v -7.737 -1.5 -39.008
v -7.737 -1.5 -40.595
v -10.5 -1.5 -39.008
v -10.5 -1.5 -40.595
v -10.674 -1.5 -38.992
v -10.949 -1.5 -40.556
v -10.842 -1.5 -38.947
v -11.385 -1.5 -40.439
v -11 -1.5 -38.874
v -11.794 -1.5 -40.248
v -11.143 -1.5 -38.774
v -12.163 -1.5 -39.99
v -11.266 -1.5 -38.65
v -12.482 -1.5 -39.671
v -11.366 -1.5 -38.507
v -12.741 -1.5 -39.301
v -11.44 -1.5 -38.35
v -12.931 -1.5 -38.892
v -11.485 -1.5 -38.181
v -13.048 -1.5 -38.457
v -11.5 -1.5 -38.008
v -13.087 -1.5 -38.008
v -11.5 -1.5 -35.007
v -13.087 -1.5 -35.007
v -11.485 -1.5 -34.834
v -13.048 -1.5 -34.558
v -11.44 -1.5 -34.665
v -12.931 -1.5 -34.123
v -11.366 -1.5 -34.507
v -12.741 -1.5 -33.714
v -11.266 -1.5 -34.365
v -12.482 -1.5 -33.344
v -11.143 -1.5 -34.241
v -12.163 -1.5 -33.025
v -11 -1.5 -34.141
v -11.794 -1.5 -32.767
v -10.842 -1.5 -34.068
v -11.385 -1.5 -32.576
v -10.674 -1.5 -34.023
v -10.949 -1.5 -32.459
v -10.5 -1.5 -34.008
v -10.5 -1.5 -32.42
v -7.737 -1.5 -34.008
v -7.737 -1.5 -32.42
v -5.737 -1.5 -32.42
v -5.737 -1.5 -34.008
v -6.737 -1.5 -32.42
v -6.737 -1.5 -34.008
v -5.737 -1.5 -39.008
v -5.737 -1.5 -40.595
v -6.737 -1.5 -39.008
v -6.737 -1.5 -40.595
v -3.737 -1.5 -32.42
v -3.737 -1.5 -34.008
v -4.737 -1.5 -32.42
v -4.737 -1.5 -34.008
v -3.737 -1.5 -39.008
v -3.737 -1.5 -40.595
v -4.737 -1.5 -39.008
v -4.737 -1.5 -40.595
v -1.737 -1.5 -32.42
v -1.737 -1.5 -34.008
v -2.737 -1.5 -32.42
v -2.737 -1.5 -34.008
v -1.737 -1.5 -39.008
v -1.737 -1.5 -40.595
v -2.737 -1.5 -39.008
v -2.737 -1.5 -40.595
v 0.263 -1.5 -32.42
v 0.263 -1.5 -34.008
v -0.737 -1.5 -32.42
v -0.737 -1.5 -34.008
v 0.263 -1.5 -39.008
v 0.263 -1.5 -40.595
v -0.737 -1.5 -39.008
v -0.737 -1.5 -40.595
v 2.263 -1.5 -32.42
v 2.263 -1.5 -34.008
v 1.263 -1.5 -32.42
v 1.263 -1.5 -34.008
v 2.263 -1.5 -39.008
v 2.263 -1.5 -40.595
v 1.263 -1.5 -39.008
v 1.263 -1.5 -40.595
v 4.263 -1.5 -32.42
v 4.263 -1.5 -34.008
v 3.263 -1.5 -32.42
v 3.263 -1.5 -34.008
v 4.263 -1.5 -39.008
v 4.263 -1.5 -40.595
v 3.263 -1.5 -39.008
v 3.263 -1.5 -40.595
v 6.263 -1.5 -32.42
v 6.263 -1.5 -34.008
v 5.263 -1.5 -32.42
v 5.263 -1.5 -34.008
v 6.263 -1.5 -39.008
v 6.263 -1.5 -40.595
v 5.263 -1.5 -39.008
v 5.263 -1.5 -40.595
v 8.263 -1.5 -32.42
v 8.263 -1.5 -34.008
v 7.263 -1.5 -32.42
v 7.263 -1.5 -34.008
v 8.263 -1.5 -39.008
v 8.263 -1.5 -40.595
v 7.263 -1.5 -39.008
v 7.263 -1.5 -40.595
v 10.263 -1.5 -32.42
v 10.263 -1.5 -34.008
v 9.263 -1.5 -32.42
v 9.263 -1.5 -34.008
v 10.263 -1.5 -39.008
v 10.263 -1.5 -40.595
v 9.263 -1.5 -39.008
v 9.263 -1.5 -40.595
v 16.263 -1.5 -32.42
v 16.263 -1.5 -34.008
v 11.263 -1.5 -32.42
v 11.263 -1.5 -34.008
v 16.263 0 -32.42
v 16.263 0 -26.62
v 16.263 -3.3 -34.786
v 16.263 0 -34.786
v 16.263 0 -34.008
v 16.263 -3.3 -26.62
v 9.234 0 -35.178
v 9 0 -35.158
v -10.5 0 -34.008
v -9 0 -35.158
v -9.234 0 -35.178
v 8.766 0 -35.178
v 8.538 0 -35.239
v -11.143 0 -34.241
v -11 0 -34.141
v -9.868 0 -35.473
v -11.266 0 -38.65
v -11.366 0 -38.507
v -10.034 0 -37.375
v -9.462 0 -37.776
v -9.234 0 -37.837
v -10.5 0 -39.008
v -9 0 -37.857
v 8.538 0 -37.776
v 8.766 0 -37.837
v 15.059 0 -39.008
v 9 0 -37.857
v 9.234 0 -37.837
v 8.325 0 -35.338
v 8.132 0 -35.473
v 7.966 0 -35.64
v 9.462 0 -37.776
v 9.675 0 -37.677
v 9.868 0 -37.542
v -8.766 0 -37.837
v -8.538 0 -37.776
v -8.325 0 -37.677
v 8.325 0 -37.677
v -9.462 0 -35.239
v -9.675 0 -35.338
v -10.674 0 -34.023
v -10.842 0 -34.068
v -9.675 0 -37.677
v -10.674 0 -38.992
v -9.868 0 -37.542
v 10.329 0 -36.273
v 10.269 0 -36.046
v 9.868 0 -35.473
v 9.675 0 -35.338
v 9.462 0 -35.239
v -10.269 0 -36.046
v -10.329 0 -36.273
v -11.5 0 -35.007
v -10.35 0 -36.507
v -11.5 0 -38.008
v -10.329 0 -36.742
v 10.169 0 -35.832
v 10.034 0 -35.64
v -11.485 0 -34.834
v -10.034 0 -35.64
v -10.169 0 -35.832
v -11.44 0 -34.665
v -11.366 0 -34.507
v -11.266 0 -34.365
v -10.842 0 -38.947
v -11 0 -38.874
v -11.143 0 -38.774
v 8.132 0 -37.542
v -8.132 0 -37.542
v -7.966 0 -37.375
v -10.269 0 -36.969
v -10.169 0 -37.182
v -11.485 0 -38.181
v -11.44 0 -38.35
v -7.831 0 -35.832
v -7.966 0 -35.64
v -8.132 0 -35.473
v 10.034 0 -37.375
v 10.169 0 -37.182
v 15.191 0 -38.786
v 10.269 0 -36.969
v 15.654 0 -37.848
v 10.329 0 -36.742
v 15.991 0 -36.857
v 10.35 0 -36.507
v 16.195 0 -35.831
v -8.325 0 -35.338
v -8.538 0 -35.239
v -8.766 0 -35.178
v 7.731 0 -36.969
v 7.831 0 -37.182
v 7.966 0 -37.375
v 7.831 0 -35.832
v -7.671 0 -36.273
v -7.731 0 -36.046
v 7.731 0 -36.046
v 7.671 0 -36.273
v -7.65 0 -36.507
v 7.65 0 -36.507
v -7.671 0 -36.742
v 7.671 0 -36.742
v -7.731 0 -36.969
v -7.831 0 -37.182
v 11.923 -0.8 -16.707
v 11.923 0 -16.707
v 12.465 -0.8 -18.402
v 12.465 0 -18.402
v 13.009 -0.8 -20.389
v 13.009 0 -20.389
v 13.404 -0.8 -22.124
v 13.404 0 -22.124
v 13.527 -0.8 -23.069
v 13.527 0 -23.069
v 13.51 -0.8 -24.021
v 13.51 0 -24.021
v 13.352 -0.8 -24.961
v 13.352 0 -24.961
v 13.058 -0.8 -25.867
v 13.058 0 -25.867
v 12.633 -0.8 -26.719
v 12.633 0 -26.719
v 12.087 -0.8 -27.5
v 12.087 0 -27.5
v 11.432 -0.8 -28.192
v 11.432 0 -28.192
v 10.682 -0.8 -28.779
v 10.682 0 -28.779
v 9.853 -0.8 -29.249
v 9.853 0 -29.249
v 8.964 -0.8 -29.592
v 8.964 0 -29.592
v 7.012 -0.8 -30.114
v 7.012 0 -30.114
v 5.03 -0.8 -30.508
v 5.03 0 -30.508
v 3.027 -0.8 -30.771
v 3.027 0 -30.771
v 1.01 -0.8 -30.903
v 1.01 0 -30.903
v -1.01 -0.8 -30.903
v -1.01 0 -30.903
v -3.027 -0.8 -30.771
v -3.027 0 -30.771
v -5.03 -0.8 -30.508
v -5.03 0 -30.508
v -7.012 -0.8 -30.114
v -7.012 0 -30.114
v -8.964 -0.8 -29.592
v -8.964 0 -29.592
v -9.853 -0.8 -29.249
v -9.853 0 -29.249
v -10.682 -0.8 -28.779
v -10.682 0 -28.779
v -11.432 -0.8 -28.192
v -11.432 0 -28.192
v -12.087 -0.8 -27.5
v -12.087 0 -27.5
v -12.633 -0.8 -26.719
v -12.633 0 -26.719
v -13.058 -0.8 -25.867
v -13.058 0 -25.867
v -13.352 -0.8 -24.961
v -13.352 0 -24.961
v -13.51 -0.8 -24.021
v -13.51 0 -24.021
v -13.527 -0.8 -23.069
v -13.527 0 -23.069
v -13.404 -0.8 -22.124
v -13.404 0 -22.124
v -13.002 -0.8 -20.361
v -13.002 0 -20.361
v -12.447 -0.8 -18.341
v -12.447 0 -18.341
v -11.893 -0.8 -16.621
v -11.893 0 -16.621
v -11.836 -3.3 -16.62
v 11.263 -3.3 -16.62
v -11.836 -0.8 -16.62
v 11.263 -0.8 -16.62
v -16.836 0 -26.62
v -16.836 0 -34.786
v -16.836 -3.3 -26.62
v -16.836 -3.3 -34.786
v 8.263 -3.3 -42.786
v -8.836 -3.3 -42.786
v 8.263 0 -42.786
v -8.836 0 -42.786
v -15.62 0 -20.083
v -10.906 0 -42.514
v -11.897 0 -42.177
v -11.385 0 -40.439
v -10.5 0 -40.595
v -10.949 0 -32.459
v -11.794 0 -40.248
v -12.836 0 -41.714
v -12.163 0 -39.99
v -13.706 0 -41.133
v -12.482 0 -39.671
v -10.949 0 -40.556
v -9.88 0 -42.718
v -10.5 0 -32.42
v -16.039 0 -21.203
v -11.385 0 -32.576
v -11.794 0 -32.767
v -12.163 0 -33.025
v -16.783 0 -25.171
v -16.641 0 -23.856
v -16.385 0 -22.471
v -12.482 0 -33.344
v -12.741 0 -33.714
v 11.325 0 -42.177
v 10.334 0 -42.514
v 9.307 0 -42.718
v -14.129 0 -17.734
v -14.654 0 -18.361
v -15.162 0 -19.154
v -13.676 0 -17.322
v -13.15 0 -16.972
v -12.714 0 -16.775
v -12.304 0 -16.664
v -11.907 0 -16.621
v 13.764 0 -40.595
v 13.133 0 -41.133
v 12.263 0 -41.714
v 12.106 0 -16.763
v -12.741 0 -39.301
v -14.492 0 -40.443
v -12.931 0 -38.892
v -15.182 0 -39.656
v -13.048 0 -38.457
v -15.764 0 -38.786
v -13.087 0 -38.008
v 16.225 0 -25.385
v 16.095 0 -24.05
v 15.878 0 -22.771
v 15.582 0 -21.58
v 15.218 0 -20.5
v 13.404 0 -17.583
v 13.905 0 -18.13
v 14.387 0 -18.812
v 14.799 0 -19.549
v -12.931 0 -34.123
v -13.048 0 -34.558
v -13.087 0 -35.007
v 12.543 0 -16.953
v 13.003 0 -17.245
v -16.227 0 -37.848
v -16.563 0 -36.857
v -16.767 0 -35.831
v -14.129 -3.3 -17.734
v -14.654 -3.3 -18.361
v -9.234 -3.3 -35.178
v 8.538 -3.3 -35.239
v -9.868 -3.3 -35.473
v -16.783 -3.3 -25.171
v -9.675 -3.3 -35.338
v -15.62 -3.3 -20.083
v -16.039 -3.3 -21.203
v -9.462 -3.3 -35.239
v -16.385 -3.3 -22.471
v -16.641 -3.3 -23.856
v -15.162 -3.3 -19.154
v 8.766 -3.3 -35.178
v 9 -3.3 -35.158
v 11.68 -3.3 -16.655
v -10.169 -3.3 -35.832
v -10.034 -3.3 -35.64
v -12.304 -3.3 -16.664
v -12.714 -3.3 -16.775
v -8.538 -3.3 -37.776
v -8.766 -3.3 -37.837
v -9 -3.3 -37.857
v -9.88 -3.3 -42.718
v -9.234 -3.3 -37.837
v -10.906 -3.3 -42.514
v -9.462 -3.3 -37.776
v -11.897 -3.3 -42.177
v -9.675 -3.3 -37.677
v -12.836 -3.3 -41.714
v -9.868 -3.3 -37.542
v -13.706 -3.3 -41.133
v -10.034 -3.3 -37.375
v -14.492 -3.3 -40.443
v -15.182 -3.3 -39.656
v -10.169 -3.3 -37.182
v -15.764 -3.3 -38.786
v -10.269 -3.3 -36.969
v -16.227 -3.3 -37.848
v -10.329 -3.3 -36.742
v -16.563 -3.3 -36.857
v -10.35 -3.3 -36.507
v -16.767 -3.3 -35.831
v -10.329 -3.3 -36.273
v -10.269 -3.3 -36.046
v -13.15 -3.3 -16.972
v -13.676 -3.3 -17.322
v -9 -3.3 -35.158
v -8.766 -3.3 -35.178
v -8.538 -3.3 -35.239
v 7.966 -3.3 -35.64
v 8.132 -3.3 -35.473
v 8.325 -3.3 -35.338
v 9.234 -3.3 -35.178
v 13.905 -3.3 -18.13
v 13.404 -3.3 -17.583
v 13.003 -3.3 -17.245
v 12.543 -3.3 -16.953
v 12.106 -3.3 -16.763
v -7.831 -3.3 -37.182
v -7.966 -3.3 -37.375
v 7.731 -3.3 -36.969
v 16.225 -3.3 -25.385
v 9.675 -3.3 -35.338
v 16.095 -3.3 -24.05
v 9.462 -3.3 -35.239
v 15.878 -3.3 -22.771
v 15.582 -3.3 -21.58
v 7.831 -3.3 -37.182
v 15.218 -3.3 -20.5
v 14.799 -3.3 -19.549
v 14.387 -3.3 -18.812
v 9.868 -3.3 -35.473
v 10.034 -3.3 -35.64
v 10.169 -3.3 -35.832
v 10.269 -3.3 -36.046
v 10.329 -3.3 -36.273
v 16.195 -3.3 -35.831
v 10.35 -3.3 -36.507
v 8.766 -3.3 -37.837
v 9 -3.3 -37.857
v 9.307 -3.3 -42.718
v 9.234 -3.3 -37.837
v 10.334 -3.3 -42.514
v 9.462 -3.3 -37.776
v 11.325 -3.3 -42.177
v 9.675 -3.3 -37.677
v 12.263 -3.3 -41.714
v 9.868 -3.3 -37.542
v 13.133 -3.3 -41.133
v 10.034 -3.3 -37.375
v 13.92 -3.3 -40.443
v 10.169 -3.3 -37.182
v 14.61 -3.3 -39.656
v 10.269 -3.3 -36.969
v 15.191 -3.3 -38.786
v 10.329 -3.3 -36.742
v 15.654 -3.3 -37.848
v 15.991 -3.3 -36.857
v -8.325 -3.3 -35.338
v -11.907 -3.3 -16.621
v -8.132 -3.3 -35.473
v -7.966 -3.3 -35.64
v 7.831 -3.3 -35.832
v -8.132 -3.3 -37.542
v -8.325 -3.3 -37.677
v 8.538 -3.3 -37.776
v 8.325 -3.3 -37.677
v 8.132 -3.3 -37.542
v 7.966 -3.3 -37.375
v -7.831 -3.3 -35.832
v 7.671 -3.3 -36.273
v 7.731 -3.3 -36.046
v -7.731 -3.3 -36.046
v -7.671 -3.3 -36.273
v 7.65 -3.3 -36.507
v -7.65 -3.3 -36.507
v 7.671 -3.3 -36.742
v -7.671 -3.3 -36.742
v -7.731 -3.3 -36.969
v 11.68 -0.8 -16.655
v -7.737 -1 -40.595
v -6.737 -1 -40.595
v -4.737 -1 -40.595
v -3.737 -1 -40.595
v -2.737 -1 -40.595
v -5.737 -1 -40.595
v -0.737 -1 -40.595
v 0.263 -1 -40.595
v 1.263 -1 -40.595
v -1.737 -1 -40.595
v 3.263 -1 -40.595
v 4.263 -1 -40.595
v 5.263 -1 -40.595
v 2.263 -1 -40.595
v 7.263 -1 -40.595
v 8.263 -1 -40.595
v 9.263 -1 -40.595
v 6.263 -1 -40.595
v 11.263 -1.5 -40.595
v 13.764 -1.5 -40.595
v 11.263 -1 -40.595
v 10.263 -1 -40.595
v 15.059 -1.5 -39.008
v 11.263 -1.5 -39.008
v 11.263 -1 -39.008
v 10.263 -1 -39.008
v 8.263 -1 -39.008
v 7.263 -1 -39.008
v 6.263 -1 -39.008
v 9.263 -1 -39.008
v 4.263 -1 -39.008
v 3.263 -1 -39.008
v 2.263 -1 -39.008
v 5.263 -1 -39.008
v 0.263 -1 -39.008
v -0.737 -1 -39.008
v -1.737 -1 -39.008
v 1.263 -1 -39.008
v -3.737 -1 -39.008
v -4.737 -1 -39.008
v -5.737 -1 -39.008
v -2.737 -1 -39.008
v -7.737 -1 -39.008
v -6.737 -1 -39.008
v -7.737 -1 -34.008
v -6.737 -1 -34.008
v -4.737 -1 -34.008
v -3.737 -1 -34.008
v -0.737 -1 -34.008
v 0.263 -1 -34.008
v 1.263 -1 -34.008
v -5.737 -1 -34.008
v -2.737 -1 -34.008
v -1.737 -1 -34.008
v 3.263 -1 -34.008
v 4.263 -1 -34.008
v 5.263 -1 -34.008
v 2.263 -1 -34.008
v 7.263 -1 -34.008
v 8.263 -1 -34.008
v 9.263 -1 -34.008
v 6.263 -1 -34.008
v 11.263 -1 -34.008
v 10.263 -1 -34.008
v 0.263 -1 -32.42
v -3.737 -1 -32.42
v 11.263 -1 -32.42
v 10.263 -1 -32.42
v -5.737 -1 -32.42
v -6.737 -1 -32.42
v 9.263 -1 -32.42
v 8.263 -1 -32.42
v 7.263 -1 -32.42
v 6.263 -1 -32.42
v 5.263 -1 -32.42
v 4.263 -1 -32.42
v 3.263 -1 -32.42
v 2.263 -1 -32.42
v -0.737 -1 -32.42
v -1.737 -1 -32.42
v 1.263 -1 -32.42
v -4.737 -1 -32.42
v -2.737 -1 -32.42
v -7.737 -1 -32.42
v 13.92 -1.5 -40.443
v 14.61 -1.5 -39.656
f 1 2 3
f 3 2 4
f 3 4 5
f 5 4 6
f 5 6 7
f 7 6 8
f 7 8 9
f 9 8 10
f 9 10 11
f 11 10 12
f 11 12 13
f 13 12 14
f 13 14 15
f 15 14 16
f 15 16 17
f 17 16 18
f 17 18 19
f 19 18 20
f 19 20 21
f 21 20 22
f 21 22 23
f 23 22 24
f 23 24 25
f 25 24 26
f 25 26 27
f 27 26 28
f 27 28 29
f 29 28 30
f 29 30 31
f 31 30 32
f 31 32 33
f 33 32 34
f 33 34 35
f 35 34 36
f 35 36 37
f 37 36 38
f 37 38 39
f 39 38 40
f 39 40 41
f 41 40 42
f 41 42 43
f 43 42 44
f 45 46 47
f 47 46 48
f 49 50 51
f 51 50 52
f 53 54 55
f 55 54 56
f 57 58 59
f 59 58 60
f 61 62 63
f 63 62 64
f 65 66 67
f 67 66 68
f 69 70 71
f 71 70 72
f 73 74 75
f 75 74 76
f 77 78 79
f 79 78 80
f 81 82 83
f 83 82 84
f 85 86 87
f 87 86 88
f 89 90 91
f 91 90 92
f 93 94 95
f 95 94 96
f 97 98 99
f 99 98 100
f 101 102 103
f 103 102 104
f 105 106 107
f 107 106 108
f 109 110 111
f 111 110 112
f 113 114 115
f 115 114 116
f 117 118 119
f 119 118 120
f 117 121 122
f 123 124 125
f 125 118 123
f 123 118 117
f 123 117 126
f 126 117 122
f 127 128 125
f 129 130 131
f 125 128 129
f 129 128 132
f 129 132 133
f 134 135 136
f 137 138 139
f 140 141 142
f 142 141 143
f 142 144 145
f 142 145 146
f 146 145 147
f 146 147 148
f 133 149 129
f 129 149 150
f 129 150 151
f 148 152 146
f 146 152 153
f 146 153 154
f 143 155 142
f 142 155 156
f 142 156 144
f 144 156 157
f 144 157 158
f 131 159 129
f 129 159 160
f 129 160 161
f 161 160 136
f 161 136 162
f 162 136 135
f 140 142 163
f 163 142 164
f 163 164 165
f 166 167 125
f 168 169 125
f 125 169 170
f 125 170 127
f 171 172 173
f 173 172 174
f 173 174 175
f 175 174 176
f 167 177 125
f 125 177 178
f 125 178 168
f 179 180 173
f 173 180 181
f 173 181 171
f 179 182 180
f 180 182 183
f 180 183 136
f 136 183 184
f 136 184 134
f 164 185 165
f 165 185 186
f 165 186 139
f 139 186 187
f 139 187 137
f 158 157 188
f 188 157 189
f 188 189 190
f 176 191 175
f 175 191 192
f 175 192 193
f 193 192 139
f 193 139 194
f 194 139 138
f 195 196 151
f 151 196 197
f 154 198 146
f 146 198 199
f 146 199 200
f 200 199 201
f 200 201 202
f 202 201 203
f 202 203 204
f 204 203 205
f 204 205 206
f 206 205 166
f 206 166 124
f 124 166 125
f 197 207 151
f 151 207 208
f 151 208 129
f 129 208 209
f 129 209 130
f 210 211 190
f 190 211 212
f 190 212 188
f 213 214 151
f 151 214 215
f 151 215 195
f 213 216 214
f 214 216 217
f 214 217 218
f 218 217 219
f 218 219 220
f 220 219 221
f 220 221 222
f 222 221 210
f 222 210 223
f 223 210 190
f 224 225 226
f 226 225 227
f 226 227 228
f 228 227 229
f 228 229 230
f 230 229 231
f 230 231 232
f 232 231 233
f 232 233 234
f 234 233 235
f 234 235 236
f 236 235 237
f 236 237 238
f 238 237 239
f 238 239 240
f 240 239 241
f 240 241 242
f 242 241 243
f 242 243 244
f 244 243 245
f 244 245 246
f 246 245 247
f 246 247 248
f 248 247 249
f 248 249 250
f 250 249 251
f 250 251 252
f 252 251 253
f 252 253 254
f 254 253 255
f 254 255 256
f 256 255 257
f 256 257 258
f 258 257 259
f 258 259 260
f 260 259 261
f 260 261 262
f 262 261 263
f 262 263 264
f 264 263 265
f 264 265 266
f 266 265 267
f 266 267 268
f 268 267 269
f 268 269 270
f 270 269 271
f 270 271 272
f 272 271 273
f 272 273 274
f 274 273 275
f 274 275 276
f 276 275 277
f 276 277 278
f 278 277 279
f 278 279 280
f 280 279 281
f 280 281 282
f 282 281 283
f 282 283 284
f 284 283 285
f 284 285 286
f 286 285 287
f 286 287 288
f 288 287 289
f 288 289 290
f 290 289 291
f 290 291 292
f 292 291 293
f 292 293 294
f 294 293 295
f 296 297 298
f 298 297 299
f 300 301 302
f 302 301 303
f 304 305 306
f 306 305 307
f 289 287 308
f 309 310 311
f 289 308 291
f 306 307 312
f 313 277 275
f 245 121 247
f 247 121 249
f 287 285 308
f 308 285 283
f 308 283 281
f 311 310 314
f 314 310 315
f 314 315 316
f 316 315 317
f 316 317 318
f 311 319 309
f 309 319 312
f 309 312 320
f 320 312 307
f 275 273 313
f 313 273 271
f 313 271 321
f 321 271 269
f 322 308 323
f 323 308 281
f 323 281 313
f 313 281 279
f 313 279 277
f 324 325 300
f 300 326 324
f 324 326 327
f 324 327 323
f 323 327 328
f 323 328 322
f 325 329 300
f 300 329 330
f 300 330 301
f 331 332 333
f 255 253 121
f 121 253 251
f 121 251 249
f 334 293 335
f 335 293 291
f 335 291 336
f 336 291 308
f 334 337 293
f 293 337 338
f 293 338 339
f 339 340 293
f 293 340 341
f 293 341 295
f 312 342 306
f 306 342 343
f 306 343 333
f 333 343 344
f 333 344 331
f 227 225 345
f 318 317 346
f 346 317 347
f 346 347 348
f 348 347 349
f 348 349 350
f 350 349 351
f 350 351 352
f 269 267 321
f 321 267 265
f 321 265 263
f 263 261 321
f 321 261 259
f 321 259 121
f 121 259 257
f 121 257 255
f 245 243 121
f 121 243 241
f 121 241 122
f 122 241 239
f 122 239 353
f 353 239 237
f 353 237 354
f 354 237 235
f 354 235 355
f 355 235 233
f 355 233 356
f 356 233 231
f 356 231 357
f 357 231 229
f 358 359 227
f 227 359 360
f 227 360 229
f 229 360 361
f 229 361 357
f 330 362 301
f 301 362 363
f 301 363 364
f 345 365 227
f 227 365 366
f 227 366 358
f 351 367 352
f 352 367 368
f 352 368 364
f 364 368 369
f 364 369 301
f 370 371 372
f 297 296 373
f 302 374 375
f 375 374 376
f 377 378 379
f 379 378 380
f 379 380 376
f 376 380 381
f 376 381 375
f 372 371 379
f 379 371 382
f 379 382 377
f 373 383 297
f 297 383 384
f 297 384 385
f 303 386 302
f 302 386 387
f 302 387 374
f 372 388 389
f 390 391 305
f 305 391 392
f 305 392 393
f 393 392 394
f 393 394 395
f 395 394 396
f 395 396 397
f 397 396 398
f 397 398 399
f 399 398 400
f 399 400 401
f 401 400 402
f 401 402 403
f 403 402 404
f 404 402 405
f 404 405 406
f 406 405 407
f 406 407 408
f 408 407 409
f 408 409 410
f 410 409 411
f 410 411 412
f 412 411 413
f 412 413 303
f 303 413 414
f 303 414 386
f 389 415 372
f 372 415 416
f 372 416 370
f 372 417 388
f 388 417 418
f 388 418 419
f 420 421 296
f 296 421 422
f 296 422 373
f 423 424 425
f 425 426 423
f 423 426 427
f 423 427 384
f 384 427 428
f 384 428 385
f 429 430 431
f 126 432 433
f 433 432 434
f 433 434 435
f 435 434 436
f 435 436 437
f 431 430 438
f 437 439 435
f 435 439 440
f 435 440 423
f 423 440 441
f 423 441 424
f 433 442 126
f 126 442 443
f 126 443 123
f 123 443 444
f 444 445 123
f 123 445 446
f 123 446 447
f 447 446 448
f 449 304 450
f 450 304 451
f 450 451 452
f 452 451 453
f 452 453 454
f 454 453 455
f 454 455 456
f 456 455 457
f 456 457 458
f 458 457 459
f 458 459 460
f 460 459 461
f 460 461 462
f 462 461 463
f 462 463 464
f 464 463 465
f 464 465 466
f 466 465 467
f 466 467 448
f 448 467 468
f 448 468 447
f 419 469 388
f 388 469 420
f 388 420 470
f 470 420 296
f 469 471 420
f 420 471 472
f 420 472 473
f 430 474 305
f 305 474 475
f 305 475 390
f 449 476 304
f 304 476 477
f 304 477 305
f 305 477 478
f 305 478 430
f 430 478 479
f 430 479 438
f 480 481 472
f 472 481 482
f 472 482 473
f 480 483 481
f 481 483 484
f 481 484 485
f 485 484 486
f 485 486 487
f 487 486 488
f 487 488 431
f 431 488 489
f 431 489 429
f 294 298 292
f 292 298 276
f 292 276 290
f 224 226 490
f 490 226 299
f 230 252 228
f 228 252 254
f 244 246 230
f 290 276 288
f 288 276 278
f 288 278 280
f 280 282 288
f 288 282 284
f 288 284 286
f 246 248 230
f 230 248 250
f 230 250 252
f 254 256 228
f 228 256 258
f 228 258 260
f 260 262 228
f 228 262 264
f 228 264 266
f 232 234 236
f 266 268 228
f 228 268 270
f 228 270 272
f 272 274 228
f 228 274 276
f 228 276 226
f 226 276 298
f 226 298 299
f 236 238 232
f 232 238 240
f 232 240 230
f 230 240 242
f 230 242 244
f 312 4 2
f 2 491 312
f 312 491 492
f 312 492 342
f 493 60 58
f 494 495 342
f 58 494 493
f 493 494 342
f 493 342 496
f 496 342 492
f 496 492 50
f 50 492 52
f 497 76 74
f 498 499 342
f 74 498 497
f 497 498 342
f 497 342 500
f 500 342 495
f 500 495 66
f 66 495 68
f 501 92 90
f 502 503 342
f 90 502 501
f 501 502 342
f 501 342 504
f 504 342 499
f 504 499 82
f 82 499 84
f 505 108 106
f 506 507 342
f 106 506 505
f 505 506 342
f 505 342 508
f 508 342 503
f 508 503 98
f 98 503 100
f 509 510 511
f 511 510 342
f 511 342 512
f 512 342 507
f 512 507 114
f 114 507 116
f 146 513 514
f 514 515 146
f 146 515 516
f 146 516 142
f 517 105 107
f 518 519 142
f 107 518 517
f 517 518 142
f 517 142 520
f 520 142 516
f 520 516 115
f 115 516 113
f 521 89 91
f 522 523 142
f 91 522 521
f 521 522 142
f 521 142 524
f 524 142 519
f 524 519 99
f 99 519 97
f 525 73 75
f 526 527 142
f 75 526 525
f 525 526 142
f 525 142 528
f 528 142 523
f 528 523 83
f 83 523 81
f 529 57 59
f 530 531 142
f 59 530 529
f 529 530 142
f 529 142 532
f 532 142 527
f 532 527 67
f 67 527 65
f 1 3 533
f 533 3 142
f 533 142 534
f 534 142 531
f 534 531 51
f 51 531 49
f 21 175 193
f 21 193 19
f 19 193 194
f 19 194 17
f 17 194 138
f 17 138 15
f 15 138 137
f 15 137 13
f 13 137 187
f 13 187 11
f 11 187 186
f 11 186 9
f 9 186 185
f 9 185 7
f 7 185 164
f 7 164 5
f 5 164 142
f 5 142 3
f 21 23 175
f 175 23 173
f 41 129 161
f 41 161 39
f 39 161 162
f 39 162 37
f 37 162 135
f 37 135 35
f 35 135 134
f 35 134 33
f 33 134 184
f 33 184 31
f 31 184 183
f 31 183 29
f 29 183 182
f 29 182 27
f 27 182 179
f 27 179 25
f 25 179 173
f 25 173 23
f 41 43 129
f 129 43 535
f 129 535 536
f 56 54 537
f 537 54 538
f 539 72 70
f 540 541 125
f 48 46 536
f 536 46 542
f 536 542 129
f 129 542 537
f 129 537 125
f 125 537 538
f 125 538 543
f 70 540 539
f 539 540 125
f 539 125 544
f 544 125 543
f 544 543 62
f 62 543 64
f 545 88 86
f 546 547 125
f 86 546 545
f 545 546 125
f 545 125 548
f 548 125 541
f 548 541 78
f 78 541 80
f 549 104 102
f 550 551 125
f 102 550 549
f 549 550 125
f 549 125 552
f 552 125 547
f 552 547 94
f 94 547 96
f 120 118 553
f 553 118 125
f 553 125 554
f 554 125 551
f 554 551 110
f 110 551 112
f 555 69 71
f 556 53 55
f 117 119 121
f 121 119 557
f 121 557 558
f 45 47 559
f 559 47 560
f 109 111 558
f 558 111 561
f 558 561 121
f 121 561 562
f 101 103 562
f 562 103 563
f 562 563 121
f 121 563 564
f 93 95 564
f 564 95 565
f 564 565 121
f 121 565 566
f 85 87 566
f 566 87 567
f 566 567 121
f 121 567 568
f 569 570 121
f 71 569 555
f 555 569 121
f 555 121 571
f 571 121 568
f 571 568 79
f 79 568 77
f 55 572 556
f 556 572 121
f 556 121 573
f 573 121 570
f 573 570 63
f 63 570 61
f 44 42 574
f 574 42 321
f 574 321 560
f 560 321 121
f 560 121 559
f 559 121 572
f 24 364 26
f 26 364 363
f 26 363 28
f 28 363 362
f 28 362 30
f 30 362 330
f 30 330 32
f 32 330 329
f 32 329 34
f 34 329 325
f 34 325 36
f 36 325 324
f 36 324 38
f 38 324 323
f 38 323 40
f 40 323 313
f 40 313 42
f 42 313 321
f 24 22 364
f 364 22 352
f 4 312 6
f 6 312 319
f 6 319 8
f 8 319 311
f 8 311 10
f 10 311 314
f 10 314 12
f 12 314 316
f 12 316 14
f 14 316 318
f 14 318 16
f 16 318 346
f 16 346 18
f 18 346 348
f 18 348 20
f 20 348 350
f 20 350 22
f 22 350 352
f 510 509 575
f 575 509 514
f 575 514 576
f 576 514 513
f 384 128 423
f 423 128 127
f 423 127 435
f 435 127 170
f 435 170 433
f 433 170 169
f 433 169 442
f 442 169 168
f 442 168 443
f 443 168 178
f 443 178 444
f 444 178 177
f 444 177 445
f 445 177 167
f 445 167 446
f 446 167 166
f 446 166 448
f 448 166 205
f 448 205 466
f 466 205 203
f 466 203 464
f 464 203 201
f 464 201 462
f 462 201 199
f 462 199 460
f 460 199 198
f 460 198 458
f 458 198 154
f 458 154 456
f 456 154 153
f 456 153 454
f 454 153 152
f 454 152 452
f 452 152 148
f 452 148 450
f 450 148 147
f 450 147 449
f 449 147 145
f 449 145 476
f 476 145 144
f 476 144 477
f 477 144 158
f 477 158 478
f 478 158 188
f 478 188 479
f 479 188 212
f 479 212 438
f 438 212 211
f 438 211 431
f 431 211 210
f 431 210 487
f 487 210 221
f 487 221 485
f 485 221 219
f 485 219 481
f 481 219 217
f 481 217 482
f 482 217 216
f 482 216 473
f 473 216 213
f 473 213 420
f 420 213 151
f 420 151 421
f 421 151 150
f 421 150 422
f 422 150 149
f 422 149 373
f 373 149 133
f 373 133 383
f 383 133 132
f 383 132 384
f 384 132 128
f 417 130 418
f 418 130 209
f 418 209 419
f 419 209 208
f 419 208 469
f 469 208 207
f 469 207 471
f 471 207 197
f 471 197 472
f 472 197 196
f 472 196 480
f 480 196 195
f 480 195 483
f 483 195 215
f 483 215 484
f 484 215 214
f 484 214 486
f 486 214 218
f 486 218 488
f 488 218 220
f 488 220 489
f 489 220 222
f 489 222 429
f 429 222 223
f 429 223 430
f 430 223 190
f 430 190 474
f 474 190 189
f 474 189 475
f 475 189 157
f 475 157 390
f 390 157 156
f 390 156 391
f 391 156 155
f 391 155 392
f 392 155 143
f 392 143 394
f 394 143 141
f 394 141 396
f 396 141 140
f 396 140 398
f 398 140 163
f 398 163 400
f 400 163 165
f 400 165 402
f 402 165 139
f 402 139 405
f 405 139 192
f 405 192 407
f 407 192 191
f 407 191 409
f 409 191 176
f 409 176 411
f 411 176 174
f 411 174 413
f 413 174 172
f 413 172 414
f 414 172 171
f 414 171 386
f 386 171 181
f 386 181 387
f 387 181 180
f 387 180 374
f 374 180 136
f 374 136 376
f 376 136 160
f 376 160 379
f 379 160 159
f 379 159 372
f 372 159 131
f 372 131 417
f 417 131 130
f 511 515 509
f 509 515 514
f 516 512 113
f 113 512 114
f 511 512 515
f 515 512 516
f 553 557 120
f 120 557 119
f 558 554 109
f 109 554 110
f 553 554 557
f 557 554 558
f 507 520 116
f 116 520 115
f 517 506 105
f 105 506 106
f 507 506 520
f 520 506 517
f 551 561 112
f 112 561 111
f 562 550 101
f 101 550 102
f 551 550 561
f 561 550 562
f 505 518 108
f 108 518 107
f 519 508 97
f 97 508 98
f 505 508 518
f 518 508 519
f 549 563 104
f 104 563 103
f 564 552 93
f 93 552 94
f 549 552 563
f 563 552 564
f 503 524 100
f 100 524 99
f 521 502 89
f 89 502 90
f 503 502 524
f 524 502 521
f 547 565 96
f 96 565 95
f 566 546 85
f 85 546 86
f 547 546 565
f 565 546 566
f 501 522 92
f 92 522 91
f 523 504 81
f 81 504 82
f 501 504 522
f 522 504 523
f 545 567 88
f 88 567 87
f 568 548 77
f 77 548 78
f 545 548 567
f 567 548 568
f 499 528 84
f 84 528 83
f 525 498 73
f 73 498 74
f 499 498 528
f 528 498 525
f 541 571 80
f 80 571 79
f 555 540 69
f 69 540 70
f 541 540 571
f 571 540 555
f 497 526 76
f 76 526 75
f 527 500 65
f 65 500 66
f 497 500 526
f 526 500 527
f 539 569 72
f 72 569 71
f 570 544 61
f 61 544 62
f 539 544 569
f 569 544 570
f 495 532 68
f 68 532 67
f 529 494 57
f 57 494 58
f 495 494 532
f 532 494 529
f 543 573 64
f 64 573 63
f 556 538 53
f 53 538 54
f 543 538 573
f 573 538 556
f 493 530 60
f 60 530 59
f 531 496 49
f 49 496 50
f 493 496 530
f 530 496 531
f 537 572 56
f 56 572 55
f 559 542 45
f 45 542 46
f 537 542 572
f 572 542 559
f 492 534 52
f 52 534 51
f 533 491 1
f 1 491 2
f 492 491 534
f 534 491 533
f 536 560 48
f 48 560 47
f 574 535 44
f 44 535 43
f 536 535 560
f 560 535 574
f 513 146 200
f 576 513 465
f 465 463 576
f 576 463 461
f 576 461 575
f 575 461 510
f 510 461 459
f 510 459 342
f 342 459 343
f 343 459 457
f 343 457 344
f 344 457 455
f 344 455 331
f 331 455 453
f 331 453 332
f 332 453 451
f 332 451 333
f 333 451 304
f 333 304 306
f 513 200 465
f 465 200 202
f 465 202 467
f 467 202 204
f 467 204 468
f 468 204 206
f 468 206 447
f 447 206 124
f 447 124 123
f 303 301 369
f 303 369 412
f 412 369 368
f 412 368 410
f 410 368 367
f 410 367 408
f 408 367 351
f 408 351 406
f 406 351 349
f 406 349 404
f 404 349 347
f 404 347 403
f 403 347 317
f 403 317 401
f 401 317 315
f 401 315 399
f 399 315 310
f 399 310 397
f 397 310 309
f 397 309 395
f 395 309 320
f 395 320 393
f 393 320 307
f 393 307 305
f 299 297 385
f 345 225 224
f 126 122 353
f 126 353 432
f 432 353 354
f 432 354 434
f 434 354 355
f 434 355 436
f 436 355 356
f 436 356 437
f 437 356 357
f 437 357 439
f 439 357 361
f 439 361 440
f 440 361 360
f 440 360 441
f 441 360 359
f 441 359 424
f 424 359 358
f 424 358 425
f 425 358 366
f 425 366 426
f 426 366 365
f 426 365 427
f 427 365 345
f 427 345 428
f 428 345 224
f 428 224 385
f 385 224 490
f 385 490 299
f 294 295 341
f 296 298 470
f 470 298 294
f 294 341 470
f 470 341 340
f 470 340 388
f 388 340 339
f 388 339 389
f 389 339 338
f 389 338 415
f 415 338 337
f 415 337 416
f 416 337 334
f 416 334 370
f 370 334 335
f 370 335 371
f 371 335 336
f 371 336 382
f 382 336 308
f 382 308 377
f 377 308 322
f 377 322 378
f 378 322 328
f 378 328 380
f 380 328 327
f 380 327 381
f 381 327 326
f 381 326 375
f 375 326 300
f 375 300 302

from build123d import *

# Parameters (mm, degrees)
BOSS_EXTRUDE1_DEPTH        = 0.8
BOSS_EXTRUDE4_START        = -0.8
BOSS_EXTRUDE4_DEPTH        = 2.5
CUT_EXTRUDE2_DEPTH         = 1.5
M2_5_CLEARANCE_HOLE1_D     = 2.7
M2_5_CLEARANCE_HOLE1_DEPTH = 11.188838164
M2_5_CLEARANCE_HOLE1_TIP   = 0.811161836
BOSS_EXTRUDE7_START        = -1.5
SKETCH11_W                 = 1
SKETCH11_H                 = 1.5875
BOSS_EXTRUDE7_DEPTH        = 0.5
LPATTERN2_COUNT            = 10
LPATTERN2_PITCH            = 2
FILLET4_R                  = 8
FILLET6_SIZE               = 5
FILLET6_SIZE_2             = 10
FILLET7_SIZE               = 5
FILLET7_SIZE_2             = 10


with BuildPart() as part:
    # Sketch3 → Boss-Extrude1 (new body)
    with BuildSketch(Plane(origin=(0, 0, 0), x_dir=(1, 0, 0), z_dir=(0, 1, 0))):
        with BuildLine():
            ThreePointArc((-8.964400592, 29.591990842), (0, 30.92), (8.964400592, 29.591990842))
            ThreePointArc((8.964400592, 29.591990842), (12.633049801, 26.719344266), (13.403780114, 22.124014011))
            ThreePointArc((13.403780114, 22.124014011), (12.736333478, 19.347857063), (11.892930693, 16.62))
            Line((11.892930693, 16.62), (16.263283948, 16.62))
            Line((16.263283948, 16.62), (16.263283948, 42.786292272))
            Line((16.263283948, 42.786292272), (-16.835608917, 42.786292272))
            Line((-16.835608917, 42.786292272), (-16.835608917, 16.62))
            Line((-16.835608917, 16.62), (-11.892930693, 16.62))
            ThreePointArc((-11.892930693, 16.62), (-12.736333478, 19.347857063), (-13.403780114, 22.124014011))
            ThreePointArc((-13.403780114, 22.124014011), (-12.633049801, 26.719344266), (-8.964400592, 29.591990842))
        make_face()
        with BuildLine():
            Line((-10.5, 32.42), (16.263283948, 32.42))
            Line((16.263283948, 32.42), (16.263283948, 34.0075))
            Line((16.263283948, 34.0075), (-10.5, 34.0075))
            ThreePointArc((-10.5, 34.0075), (-11.207106781, 34.300393219), (-11.5, 35.0075))
            Line((-11.5, 35.0075), (-11.5, 38.0075))
            ThreePointArc((-11.5, 38.0075), (-11.207106781, 38.714606781), (-10.5, 39.0075))
            Line((-10.5, 39.0075), (16.263283948, 39.0075))
            Line((16.263283948, 39.0075), (16.263283948, 40.595))
            Line((16.263283948, 40.595), (-10.5, 40.595))
            ThreePointArc((-10.5, 40.595), (-12.329638796, 39.837138796), (-13.0875, 38.0075))
            Line((-13.0875, 38.0075), (-13.0875, 35.0075))
            ThreePointArc((-13.0875, 35.0075), (-12.329638796, 33.177861204), (-10.5, 32.42))
        make_face()
        with BuildLine():
            Line((-10.5, 34.0075), (16.263283948, 34.0075))
            Line((16.263283948, 34.0075), (16.263283948, 39.0075))
            Line((16.263283948, 39.0075), (-10.5, 39.0075))
            ThreePointArc((-10.5, 39.0075), (-11.207106781, 38.714606781), (-11.5, 38.0075))
            Line((-11.5, 38.0075), (-11.5, 35.0075))
            ThreePointArc((-11.5, 35.0075), (-11.207106781, 34.300393219), (-10.5, 34.0075))
        make_face()
    extrude(amount=-BOSS_EXTRUDE1_DEPTH)

    # Sketch3<5> → Boss-Extrude4 (add)
    with BuildSketch(Plane(origin=(0, 0, 0), x_dir=(1, 0, 0), z_dir=(0, 1, 0)).offset(BOSS_EXTRUDE4_START)):
        with BuildLine():
            ThreePointArc((-8.964400592, 29.591990842), (0, 30.92), (8.964400592, 29.591990842))
            ThreePointArc((8.964400592, 29.591990842), (12.633049801, 26.719344266), (13.403780114, 22.124014011))
            ThreePointArc((13.403780114, 22.124014011), (12.736333478, 19.347857063), (11.892930693, 16.62))
            Line((11.892930693, 16.62), (16.263283948, 16.62))
            Line((16.263283948, 16.62), (16.263283948, 42.786292272))
            Line((16.263283948, 42.786292272), (-16.835608917, 42.786292272))
            Line((-16.835608917, 42.786292272), (-16.835608917, 16.62))
            Line((-16.835608917, 16.62), (-11.892930693, 16.62))
            ThreePointArc((-11.892930693, 16.62), (-12.736333478, 19.347857063), (-13.403780114, 22.124014011))
            ThreePointArc((-13.403780114, 22.124014011), (-12.633049801, 26.719344266), (-8.964400592, 29.591990842))
        make_face()
        with BuildLine():
            ThreePointArc((8.964400592, 29.591990842), (12.633049801, 26.719344266), (13.403780114, 22.124014011))
            ThreePointArc((13.403780114, 22.124014011), (12.736333478, 19.347857063), (11.892930693, 16.62))
            Line((11.892930693, 16.62), (-11.892930693, 16.62))
            ThreePointArc((-11.892930693, 16.62), (-12.736333478, 19.347857063), (-13.403780114, 22.124014011))
            ThreePointArc((-13.403780114, 22.124014011), (-12.633049801, 26.719344266), (-8.964400592, 29.591990842))
            ThreePointArc((-8.964400592, 29.591990842), (0, 30.92), (8.964400592, 29.591990842))
        make_face()
        with BuildLine():
            Line((-10.5, 32.42), (16.263283948, 32.42))
            Line((16.263283948, 32.42), (16.263283948, 34.0075))
            Line((16.263283948, 34.0075), (-10.5, 34.0075))
            ThreePointArc((-10.5, 34.0075), (-11.207106781, 34.300393219), (-11.5, 35.0075))
            Line((-11.5, 35.0075), (-11.5, 38.0075))
            ThreePointArc((-11.5, 38.0075), (-11.207106781, 38.714606781), (-10.5, 39.0075))
            Line((-10.5, 39.0075), (16.263283948, 39.0075))
            Line((16.263283948, 39.0075), (16.263283948, 40.595))
            Line((16.263283948, 40.595), (-10.5, 40.595))
            ThreePointArc((-10.5, 40.595), (-12.329638796, 39.837138796), (-13.0875, 38.0075))
            Line((-13.0875, 38.0075), (-13.0875, 35.0075))
            ThreePointArc((-13.0875, 35.0075), (-12.329638796, 33.177861204), (-10.5, 32.42))
        make_face()
        with BuildLine():
            Line((-10.5, 34.0075), (16.263283948, 34.0075))
            Line((16.263283948, 34.0075), (16.263283948, 39.0075))
            Line((16.263283948, 39.0075), (-10.5, 39.0075))
            ThreePointArc((-10.5, 39.0075), (-11.207106781, 38.714606781), (-11.5, 38.0075))
            Line((-11.5, 38.0075), (-11.5, 35.0075))
            ThreePointArc((-11.5, 35.0075), (-11.207106781, 34.300393219), (-10.5, 34.0075))
        make_face()
    extrude(amount=-BOSS_EXTRUDE4_DEPTH)

    # Sketch3<7> → Cut-Extrude2 (cut)
    with BuildSketch(Plane(origin=(0, 0, 0), x_dir=(1, 0, 0), z_dir=(0, 1, 0))):
        with BuildLine():
            Line((-10.5, 32.42), (16.263283948, 32.42))
            Line((16.263283948, 32.42), (16.263283948, 34.0075))
            Line((16.263283948, 34.0075), (-10.5, 34.0075))
            ThreePointArc((-10.5, 34.0075), (-11.207106781, 34.300393219), (-11.5, 35.0075))
            Line((-11.5, 35.0075), (-11.5, 38.0075))
            ThreePointArc((-11.5, 38.0075), (-11.207106781, 38.714606781), (-10.5, 39.0075))
            Line((-10.5, 39.0075), (16.263283948, 39.0075))
            Line((16.263283948, 39.0075), (16.263283948, 40.595))
            Line((16.263283948, 40.595), (-10.5, 40.595))
            ThreePointArc((-10.5, 40.595), (-12.329638796, 39.837138796), (-13.0875, 38.0075))
            Line((-13.0875, 38.0075), (-13.0875, 35.0075))
            ThreePointArc((-13.0875, 35.0075), (-12.329638796, 33.177861204), (-10.5, 32.42))
        make_face()
    extrude(amount=-CUT_EXTRUDE2_DEPTH, mode=Mode.SUBTRACT)

    # M2.5 Clearance Hole1
    with Locations(Plane(origin=(0, 0, 0), x_dir=(1, 0, 0), z_dir=(0, 1, 0))):
        with Locations((-9, 36.5075), (9, 36.5075)):
            Hole(M2_5_CLEARANCE_HOLE1_D / 2, depth=M2_5_CLEARANCE_HOLE1_DEPTH)
            with Locations((0, 0, -(M2_5_CLEARANCE_HOLE1_DEPTH + M2_5_CLEARANCE_HOLE1_TIP / 2))):  # 118° drill point
                Cone(0, M2_5_CLEARANCE_HOLE1_D / 2, M2_5_CLEARANCE_HOLE1_TIP, mode=Mode.SUBTRACT)

    # Sketch11 → Boss-Extrude7 (add)
    with BuildSketch(Plane(origin=(0, 0, 0), x_dir=(1, 0, 0), z_dir=(0, 1, 0)).offset(BOSS_EXTRUDE7_START)):
        with Locations((10.763283948, 39.80125)):
            Rectangle(SKETCH11_W, SKETCH11_H)
        with Locations((10.763283948, 33.21375)):
            Rectangle(SKETCH11_W, SKETCH11_H)
    boss_extrude7 = extrude(amount=BOSS_EXTRUDE7_DEPTH)

    # LPattern2: Boss-Extrude7 ×10
    with Locations(*[(-i * LPATTERN2_PITCH, 0, 0) for i in range(1, LPATTERN2_COUNT)]):
        add(boss_extrude7)

    # Fillet4
    fillet4_edges = [part.edges().sort_by_distance(p)[0] for p in [
        (16.263283948, -1.65, -42.786292272),
        (-16.835608917, -1.65, -42.786292272),
    ]]
    fillet(fillet4_edges, radius=FILLET4_R)

    # Fillet6
    # an asymmetric fillet: 10, 5 mm, written as the material it takes off along each edge
    with BuildSketch(Plane(origin=(16.263283948, -28.3, -16.62), x_dir=(-1, 0, 0), z_dir=(0, 1, 0))) as fillet6_piece_1:
        with BuildLine():
            Bezier((FILLET6_SIZE, 0), (0, 0), (0, -FILLET6_SIZE_2), weights=[1, 0.707106781, 1])
            Line((0, -FILLET6_SIZE_2), (0, 0))
            Line((0, 0), (FILLET6_SIZE, 0))
        make_face()
    extrude(amount=53.3, mode=Mode.SUBTRACT)

    # Fillet7
    # an asymmetric fillet: 10, 5 mm, written as the material it takes off along each edge
    with BuildSketch(Plane(origin=(-16.835608917, 25, -16.62), x_dir=(1, 0, 0), z_dir=(0, -1, 0))) as fillet7_piece_1:
        with BuildLine():
            Bezier((FILLET7_SIZE, 0), (0, 0), (0, -FILLET7_SIZE_2), weights=[1, 0.707106781, 1])
            Line((0, -FILLET7_SIZE_2), (0, 0))
            Line((0, 0), (FILLET7_SIZE, 0))
        make_face()
    extrude(amount=53.3, mode=Mode.SUBTRACT)


solid = part.part
